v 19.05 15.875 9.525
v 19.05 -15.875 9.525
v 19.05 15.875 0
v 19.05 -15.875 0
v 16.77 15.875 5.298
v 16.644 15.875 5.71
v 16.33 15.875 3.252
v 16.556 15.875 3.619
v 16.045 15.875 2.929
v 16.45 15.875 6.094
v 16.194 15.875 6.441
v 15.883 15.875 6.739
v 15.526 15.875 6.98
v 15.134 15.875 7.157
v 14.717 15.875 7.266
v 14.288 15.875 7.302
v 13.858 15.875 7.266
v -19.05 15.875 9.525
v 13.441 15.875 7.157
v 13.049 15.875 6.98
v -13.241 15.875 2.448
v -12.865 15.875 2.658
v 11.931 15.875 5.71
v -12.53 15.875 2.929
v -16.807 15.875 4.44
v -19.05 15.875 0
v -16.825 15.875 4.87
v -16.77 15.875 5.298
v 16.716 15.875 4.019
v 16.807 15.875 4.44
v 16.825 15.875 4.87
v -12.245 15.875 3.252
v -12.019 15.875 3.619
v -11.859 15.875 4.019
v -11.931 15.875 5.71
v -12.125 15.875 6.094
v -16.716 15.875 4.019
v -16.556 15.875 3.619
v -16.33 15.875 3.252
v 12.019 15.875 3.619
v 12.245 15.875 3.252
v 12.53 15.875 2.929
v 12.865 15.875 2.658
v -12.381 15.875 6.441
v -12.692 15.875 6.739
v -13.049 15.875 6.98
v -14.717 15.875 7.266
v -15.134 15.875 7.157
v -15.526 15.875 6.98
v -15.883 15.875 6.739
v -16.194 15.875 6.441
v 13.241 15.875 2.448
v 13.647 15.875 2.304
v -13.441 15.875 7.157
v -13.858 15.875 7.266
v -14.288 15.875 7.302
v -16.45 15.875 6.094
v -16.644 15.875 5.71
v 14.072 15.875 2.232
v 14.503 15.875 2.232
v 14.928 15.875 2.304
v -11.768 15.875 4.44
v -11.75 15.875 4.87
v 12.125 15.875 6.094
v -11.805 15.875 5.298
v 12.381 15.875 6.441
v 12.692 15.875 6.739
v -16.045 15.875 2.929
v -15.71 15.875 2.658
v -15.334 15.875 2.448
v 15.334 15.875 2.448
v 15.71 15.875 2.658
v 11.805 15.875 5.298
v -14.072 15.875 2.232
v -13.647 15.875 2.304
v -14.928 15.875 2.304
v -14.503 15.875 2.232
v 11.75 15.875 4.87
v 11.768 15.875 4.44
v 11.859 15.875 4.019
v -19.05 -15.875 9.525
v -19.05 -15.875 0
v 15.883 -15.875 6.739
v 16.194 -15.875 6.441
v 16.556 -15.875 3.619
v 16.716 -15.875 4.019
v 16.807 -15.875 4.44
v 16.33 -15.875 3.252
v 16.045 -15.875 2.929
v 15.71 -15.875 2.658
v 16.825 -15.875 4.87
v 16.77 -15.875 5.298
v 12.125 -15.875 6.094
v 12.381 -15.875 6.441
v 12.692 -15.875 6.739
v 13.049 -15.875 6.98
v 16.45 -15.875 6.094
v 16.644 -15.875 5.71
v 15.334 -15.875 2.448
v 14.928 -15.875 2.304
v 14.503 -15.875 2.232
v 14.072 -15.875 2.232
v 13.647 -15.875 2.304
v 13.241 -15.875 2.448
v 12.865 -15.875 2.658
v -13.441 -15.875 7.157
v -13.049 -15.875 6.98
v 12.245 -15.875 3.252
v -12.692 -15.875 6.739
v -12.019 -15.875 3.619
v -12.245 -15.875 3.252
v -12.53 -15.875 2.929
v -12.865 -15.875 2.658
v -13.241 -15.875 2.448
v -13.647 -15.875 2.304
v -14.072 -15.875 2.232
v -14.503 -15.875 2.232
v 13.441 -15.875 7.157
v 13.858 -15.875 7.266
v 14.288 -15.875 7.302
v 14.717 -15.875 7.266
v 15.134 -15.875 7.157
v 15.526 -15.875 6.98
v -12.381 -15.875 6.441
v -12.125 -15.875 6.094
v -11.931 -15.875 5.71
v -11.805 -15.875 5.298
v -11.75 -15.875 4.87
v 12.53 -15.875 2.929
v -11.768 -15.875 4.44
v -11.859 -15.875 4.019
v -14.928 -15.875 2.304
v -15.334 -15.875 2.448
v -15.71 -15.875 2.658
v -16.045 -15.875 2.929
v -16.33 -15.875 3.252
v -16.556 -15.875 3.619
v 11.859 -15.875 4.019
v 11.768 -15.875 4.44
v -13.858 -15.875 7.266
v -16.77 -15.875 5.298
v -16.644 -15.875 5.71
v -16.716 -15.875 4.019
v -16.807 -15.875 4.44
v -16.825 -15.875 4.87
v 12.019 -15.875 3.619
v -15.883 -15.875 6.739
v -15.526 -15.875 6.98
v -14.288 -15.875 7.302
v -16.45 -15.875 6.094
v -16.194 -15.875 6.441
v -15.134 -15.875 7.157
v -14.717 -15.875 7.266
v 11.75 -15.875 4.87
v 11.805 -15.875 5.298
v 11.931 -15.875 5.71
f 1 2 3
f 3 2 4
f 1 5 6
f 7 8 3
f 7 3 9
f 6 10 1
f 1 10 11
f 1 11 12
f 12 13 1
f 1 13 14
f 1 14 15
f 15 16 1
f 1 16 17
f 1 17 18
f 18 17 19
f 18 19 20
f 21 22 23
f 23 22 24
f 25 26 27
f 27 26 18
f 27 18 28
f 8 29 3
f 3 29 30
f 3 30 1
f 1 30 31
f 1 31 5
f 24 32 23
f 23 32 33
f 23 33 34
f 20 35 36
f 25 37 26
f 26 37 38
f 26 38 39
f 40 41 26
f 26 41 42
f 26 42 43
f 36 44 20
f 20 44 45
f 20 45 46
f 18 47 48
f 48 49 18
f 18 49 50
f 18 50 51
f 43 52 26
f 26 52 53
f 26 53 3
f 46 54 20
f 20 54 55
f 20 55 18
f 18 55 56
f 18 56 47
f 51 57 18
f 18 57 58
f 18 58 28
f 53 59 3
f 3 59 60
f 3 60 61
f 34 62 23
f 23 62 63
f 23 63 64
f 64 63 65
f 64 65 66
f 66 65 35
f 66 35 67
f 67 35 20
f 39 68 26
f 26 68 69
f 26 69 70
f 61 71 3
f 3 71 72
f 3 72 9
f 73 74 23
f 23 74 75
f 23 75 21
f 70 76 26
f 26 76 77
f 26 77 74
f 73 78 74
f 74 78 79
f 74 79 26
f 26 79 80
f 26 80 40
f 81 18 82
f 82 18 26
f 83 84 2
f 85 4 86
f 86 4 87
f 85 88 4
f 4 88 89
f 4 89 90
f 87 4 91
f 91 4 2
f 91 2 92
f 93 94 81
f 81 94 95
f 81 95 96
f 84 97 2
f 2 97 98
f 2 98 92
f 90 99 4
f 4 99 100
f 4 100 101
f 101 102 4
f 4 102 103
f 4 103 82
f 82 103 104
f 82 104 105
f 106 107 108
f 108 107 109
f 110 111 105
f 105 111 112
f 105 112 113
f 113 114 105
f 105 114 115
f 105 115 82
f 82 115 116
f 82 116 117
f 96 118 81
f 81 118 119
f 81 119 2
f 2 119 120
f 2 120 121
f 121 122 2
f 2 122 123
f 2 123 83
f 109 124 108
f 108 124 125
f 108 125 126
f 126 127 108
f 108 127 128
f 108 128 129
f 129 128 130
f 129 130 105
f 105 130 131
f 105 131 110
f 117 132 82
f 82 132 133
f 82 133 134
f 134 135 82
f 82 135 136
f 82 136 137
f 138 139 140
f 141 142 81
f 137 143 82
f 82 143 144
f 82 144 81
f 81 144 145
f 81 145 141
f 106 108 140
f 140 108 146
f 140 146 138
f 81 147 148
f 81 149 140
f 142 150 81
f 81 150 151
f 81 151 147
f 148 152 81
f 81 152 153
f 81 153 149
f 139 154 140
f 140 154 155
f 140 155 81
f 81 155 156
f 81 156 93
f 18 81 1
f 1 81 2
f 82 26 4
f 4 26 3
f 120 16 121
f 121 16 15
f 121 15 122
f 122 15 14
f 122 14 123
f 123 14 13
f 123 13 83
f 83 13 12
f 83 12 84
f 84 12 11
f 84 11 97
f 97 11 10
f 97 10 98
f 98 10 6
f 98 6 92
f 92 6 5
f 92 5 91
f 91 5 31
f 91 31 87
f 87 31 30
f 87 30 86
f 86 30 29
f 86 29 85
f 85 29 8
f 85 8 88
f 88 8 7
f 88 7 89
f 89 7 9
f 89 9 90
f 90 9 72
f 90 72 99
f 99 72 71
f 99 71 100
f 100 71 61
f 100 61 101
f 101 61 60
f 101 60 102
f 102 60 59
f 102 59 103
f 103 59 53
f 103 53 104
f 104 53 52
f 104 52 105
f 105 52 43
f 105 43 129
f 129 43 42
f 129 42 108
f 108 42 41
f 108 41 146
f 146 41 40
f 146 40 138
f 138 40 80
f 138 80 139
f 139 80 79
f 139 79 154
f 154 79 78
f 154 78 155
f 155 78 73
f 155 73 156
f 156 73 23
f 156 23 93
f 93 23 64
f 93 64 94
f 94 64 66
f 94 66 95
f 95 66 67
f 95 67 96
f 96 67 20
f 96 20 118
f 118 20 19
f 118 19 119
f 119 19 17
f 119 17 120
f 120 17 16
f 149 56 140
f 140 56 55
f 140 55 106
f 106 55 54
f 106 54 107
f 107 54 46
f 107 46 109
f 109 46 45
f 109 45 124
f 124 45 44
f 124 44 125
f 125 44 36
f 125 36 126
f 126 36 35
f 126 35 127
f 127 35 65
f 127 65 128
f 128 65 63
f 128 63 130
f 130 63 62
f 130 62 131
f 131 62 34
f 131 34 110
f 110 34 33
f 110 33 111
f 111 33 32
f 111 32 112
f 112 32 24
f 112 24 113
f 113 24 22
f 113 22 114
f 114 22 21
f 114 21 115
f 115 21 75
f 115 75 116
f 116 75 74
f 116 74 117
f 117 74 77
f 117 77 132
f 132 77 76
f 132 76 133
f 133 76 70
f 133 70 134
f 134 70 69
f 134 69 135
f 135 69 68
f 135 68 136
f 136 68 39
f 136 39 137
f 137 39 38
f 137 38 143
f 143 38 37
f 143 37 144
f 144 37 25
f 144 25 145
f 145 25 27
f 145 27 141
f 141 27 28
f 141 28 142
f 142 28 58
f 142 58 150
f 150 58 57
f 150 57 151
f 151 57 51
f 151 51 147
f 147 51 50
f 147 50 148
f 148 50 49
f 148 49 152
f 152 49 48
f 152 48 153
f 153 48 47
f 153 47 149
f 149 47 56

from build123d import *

# Parameters (mm, degrees)
SKETCH1_W                 = 38.1
SKETCH1_H                 = 31.75
BOSS_EXTRUDE1_DEPTH       = 9.525
F_6_32_TAPPED_HOLE1_D     = 2.7051
F_6_32_TAPPED_HOLE1_DEPTH = 7.62
F_6_32_TAPPED_HOLE1_TIP   = 0.81269403
F_6_32_TAPPED_HOLE2_D     = 2.7051
F_6_32_TAPPED_HOLE2_DEPTH = 9.38784
F_6_32_TAPPED_HOLE2_TIP   = 0.81269403
SKETCH2_R                 = 2.54
CUT_EXTRUDE1_DEPTH        = 39.232062788


with BuildPart() as part:
    # Sketch1 → Boss-Extrude1 (new body)
    with BuildSketch(Plane.XY):
        Rectangle(SKETCH1_W, SKETCH1_H)
    extrude(amount=BOSS_EXTRUDE1_DEPTH)

    # #6-32 Tapped Hole1
    with Locations(Plane(origin=(0, 15.875, 0), x_dir=(1, 0, 0), z_dir=(0, 1, 0))):
        with Locations((-14.2875, -4.7625), (14.2875, -4.7625)):
            Hole(F_6_32_TAPPED_HOLE1_D / 2, depth=F_6_32_TAPPED_HOLE1_DEPTH)
            with Locations((0, 0, -(F_6_32_TAPPED_HOLE1_DEPTH + F_6_32_TAPPED_HOLE1_TIP / 2))):  # 118° drill point
                Cone(0, F_6_32_TAPPED_HOLE1_D / 2, F_6_32_TAPPED_HOLE1_TIP, mode=Mode.SUBTRACT)

    # #6-32 Tapped Hole2
    with Locations(Plane(origin=(0, -15.875, 0), x_dir=(-1, 0, 0), z_dir=(0, -1, 0))):
        with Locations((-14.2875, -4.7625), (14.2875, -4.7625)):
            Hole(F_6_32_TAPPED_HOLE2_D / 2, depth=F_6_32_TAPPED_HOLE2_DEPTH)
            with Locations((0, 0, -(F_6_32_TAPPED_HOLE2_DEPTH + F_6_32_TAPPED_HOLE2_TIP / 2))):  # 118° drill point
                Cone(0, F_6_32_TAPPED_HOLE2_D / 2, F_6_32_TAPPED_HOLE2_TIP, mode=Mode.SUBTRACT)

    # Sketch2 → Cut-Extrude1 (cut, through all)
    with BuildSketch(Plane(origin=(0, 15.875, 0), x_dir=(1, 0, 0), z_dir=(0, 1, 0))):
        with Locations(Location((-14.2875, -4.7625, 0), (0, 0, 270))):
            Circle(SKETCH2_R)
        with Locations(Location((14.2875, -4.7625, 0), (0, 0, 270))):
            Circle(SKETCH2_R)
    extrude(amount=-CUT_EXTRUDE1_DEPTH, mode=Mode.SUBTRACT)


solid = part.part
